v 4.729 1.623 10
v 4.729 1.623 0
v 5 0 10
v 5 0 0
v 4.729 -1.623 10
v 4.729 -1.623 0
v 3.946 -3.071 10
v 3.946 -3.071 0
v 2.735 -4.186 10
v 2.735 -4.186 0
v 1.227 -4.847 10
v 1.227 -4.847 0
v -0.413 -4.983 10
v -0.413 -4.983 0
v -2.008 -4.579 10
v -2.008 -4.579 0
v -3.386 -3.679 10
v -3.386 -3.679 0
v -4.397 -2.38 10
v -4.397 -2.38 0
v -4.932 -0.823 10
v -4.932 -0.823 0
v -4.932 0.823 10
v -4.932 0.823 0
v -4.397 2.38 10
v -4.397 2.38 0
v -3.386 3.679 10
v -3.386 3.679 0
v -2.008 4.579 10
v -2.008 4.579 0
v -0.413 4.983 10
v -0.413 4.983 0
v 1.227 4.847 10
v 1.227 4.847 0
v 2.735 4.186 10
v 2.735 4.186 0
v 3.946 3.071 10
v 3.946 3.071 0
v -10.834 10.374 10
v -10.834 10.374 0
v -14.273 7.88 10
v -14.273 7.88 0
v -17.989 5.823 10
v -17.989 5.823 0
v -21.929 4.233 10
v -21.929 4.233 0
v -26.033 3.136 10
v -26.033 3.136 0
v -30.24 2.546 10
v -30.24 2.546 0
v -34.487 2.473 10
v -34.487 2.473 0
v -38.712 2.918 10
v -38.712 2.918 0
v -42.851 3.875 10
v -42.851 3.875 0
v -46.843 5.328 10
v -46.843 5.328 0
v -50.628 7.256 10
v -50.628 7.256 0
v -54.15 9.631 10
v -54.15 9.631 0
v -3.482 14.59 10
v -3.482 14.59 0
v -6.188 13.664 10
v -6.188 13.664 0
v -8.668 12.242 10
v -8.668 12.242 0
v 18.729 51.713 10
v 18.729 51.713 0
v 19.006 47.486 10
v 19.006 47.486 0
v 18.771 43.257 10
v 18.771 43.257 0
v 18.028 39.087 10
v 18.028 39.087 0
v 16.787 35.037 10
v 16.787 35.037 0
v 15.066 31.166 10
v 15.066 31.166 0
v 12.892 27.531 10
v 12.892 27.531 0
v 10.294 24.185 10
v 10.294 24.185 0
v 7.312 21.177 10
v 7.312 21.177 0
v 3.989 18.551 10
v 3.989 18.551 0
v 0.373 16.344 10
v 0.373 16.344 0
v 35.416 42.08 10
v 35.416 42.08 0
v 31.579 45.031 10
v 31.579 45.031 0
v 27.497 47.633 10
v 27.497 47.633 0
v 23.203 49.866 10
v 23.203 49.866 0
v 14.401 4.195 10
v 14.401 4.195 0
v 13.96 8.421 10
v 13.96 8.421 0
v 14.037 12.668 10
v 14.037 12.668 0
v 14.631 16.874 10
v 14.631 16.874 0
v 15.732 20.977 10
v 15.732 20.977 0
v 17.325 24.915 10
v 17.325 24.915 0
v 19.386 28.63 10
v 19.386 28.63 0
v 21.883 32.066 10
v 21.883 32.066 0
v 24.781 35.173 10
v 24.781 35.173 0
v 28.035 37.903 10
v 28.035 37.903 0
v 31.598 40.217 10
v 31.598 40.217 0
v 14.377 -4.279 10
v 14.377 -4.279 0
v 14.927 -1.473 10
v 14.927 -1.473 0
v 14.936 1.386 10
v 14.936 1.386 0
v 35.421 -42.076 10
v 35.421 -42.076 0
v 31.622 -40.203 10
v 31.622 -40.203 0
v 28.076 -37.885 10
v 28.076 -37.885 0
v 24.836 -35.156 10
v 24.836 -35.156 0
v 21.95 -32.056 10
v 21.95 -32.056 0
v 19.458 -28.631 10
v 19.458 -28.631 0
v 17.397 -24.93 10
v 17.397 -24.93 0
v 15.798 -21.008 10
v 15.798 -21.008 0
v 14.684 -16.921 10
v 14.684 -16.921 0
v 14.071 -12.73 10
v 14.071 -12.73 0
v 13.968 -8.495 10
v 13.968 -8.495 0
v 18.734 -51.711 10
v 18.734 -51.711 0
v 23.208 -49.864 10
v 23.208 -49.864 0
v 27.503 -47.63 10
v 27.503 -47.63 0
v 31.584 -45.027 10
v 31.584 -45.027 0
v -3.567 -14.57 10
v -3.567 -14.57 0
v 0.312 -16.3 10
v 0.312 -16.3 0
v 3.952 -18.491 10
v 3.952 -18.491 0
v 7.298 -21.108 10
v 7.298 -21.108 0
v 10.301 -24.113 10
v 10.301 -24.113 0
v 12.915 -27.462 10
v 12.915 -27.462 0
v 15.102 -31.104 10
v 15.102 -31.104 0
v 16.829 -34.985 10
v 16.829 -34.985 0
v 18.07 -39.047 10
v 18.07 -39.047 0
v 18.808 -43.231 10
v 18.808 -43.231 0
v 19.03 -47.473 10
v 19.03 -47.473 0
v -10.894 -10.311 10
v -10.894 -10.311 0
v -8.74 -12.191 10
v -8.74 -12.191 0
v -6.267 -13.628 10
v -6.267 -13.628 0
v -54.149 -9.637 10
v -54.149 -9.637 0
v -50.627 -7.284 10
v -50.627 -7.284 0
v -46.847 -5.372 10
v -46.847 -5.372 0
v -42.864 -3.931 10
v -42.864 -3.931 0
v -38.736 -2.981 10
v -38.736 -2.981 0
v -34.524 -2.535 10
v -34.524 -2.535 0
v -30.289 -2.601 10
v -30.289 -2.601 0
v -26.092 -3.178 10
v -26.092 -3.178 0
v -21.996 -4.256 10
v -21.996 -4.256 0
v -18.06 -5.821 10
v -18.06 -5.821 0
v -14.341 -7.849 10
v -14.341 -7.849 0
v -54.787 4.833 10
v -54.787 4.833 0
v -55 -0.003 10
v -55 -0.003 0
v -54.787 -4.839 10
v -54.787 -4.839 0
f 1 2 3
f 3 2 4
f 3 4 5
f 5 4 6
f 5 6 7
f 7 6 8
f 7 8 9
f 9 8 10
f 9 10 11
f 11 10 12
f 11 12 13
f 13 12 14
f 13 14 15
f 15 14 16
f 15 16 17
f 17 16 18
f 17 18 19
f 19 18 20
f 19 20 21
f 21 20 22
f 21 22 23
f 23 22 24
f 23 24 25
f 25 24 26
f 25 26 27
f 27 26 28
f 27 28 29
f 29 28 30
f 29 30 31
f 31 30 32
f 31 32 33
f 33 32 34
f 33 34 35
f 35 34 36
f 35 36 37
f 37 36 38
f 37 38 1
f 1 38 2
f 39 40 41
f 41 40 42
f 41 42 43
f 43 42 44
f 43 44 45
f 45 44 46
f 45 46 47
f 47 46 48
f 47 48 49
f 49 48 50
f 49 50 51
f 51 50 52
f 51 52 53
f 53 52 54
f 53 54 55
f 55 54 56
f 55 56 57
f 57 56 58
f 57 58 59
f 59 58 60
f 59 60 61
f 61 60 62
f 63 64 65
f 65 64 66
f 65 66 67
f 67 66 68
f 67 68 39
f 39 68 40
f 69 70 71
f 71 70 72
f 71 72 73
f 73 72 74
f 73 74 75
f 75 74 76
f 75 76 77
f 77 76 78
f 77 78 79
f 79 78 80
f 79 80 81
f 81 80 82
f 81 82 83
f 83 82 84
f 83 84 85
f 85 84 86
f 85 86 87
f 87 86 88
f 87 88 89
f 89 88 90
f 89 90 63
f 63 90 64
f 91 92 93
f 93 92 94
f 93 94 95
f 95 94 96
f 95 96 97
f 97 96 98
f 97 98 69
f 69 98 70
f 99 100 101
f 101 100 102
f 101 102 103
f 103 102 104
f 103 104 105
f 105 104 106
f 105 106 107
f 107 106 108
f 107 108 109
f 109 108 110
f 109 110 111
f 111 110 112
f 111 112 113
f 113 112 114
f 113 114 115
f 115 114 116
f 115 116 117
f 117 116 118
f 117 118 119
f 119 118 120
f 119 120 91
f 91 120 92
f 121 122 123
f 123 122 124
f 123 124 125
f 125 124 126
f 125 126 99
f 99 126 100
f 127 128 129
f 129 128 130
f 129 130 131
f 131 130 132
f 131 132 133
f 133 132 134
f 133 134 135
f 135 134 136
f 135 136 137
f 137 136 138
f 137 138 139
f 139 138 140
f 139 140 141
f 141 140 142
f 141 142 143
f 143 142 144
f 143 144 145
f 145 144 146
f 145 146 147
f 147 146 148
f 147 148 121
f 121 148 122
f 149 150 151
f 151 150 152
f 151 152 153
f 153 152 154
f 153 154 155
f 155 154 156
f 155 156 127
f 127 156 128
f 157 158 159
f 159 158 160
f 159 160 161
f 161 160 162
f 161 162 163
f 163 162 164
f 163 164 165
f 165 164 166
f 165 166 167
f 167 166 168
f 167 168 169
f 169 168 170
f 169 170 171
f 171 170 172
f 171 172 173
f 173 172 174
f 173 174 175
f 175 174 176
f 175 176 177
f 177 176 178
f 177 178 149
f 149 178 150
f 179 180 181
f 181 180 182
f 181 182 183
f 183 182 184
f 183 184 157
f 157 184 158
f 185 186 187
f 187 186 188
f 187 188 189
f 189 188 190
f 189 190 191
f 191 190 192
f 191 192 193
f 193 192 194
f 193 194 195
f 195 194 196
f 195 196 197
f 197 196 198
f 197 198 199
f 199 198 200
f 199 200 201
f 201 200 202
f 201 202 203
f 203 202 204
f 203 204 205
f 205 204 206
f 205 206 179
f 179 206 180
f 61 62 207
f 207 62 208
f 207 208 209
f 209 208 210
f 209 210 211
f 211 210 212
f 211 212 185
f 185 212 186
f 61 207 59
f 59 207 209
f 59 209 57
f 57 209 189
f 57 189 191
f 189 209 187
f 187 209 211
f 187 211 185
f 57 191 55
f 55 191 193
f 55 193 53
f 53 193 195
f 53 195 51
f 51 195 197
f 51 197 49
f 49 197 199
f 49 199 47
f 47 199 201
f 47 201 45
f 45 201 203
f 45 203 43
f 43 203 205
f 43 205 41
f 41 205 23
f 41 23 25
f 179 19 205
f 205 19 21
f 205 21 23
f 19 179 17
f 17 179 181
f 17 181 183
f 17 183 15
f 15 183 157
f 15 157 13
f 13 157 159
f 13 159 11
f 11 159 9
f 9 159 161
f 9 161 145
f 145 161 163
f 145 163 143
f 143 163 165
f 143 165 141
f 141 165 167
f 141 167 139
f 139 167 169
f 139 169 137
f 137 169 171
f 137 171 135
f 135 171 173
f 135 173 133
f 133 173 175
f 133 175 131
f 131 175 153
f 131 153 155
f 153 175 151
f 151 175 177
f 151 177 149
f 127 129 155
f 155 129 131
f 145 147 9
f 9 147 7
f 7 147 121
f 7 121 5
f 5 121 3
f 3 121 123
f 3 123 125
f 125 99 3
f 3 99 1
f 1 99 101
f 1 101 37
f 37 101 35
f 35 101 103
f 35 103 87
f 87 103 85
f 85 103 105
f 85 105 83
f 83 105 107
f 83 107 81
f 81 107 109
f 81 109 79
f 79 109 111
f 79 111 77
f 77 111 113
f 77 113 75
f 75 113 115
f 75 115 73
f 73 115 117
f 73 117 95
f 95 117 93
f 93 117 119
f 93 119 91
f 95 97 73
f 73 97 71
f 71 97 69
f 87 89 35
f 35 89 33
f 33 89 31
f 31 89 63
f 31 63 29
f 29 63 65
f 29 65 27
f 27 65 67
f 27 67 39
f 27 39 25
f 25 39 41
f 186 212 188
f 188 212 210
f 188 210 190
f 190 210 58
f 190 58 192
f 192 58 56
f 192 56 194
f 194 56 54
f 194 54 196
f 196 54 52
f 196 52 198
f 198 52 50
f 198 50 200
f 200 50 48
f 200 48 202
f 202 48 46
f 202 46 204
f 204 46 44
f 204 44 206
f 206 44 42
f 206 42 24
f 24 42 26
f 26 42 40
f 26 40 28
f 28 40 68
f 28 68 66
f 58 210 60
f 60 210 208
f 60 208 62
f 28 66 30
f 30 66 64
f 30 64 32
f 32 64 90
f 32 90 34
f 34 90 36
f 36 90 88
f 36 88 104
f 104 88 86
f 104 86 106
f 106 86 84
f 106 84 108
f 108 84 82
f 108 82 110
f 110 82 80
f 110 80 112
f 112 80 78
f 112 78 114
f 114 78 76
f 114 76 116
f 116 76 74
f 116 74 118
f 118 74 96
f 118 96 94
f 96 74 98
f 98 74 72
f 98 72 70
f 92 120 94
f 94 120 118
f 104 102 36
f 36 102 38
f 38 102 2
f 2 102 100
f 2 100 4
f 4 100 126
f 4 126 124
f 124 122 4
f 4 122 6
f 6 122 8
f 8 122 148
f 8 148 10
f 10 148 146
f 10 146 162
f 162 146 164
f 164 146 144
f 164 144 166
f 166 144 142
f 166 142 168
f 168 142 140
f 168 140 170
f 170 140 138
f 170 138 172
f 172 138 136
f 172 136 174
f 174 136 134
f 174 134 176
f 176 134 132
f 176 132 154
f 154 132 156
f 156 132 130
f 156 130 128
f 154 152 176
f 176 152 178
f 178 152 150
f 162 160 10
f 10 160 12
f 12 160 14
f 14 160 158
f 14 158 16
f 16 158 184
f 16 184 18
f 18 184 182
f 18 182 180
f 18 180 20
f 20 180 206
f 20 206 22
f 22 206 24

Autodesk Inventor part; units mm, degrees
ref_plane "YZ Plane" through (0, 0, 0) normal (1, 0, 0) x (0, 1, 0)
ref_plane "XZ Plane" through (0, 0, 0) normal (0, 1, 0) x (-1, 0, 0)
ref_plane "XY Plane" through (0, 0, 0) normal (0, 0, 1) x (1, 0, 0)
sketch "Sketch1" plane through (0, 0, 0) normal (0, 0, 1) x (1, 0, 0)
  circle A0 centre (0, 0) radius 15
  circle A1 centre (0, 0) radius 55
  line L0 (15, 0) -> (55, 0) construction
  circle A2 centre (35, 0) radius 20 construction
  circle A3 centre (-17.5, 30.310889) radius 20 construction
  circle A4 centre (-17.5, -30.310889) radius 20 construction
  line L1 (0, 0) -> (-10.833994, 10.374226)
  line L2 (0, 0) -> (27.5, -47.631397)
  line L3 (0, 0) -> (-55, 0) construction
  line L4 (0, 0) -> (27.5, 47.631397)
  line L5 (17.5, 30.310889) -> (27.5, 47.631397) construction
  line L6 (-1.432373, 18.147489) -> (18.567627, 52.788505) construction
  line L7 (18.567627, 52.788505) -> (36.432373, 42.47429) construction
  line L8 (36.432373, 42.47429) -> (16.432373, 7.833273) construction
  line L9 (16.432373, 7.833273) -> (-1.432373, 18.147489) construction
  line L10 (-1.432373, 18.147489) -> (36.432373, 42.47429) construction
  line L11 (18.567627, 52.788505) -> (16.432373, 7.833273) construction
  line L12 (-1.48905, -18.180212) -> (18.51095, -52.821228) construction
  line L13 (18.51095, -52.821228) -> (36.48905, -42.441567) construction
  line L14 (36.48905, -42.441567) -> (16.48905, -7.80055) construction
  line L15 (16.48905, -7.80055) -> (-1.48905, -18.180212) construction
  line L16 (-1.48905, -18.180212) -> (36.48905, -42.441567) construction
  line L17 (18.51095, -52.821228) -> (16.48905, -7.80055) construction
  line L18 (-55.008072, 10.310889) -> (-15, 10.310889) construction
  line L19 (-15, 10.310889) -> (-15, -10.310889) construction
  line L20 (-15, -10.310889) -> (-55.008072, -10.310889) construction
  line L21 (-55.008072, -10.310889) -> (-55.008072, 10.310889)
  line L22 (-55.008072, 10.310889) -> (-15, -10.310889) construction
  line L23 (-15, 10.310889) -> (-55.008072, -10.310889) construction
  line L24 (-39.117828, -2.5) -> (-30.890244, -2.5) construction
  line L25 (-30.890244, -2.5) -> (-30.890244, 2.5) construction
  line L26 (-30.890244, 2.5) -> (-39.117828, 2.5) construction
  line L27 (-39.117828, 2.5) -> (-39.117828, -2.5) construction
  line L28 (-39.117828, -2.5) -> (-30.890244, 2.5) construction
  line L29 (-30.890244, -2.5) -> (-39.117828, 2.5) construction
  arc A5 (-10.89429, -10.310889) -> (-55.008072, -10.310889) centre (-32.951181, -37.548278) ccw
  line L30 (-55.008072, 10.310889) -> (-55.008072, -10.310889) construction
  arc A6 (-55.008072, 10.310889) -> (-10.833994, 10.374226) centre (-32.959623, 37.256893) ccw
  line L31 (-55.008072, 10.310889) -> (-55.008072, -10.310889) construction
  arc A7 (18.574544, -52.793832) -> (-3.567347, -14.569627) centre (-15.785604, -47.172317) ccw
  line L32 (36.433528, -42.482943) -> (18.574544, -52.793832)
  arc A8 (14.376637, -4.279288) -> (36.433528, -42.482943) centre (48.993353, -9.762421) ccw
  circle A9 centre (0, 0) radius 15
  arc A10 (36.433528, 42.482943) -> (14.401341, 4.195401) centre (48.745227, 9.915425) ccw
  line L33 (18.574544, 52.793832) -> (36.433528, 42.482943)
  arc A11 (-3.482347, 14.590177) -> (18.574544, 52.793832) centre (-16.042172, 47.310699) ccw
  circle A12 centre (0, 0) radius 15
  circle A13 centre (0, 0) radius 5
  point P0 (-27.5, 47.631397)
  point P1 (-27.5, -47.631397)
  point P2 (17.5, -30.310889)
  point P3 (-35.004036, 0)
  point P4 (-7.5, 12.990381)
  point P5 (-7.5, -12.990381)
  point P6 (-54.150171, 9.631146)
  point P7 (-54.1491, -9.637168)
  point P8 (-3.567347, -14.569627)
  point P9 (18.734269, -51.710997)
  point P10 (35.420582, -42.075912)
  point P11 (14.376637, -4.279288)
  point P12 (14.401341, 4.195401)
  point P13 (35.415903, 42.079851)
  point P14 (18.728517, 51.71308)
  point P15 (-3.482347, 14.590177)
  dimension "d0" = 30
  dimension "d1" = 40
  dimension "d4" = 360
  dimension "d6" = 5
  dimension "d9" = 360
  dimension "d11" = 10
sketch "Sketch1 outline for Extrusion1" plane through (0, 0, 0) normal (0, 0, 1) x (1, 0, 0)
  arc A0 (-10.833994, 10.374226) -> (-54.150171, 9.631146) centre (-32.959623, 37.256893) cw
  arc A1 (-3.482347, 14.590177) -> (-10.833994, 10.374226) centre (0, 0) ccw
  arc A2 (-54.150171, 9.631146) -> (-54.1491, -9.637168) centre (0, 0) ccw
  arc A3 (18.728517, 51.71308) -> (-3.482347, 14.590177) centre (-16.042172, 47.310699) cw
  arc A4 (-54.1491, -9.637168) -> (-10.89429, -10.310889) centre (-32.951181, -37.548278) cw
  arc A5 (35.415903, 42.079851) -> (18.728517, 51.71308) centre (0, 0) ccw
  arc A6 (-10.89429, -10.310889) -> (-3.567347, -14.569627) centre (0, 0) ccw
  arc A7 (14.401341, 4.195401) -> (35.415903, 42.079851) centre (48.745227, 9.915425) cw
  arc A8 (-3.567347, -14.569627) -> (18.734269, -51.710997) centre (-15.785604, -47.172317) cw
  arc A9 (14.376637, -4.279288) -> (14.401341, 4.195401) centre (0, 0) ccw
  arc A10 (18.734269, -51.710997) -> (35.420582, -42.075912) centre (0, 0) ccw
  arc A11 (35.420582, -42.075912) -> (14.376637, -4.279288) centre (48.993353, -9.762421) cw
  circle A12 centre (0, 0) radius 5
extrude "Extrusion1" add sketch "Sketch1 outline for Extrusion1" along normal blind 10
properties part number "Combine mk1"
